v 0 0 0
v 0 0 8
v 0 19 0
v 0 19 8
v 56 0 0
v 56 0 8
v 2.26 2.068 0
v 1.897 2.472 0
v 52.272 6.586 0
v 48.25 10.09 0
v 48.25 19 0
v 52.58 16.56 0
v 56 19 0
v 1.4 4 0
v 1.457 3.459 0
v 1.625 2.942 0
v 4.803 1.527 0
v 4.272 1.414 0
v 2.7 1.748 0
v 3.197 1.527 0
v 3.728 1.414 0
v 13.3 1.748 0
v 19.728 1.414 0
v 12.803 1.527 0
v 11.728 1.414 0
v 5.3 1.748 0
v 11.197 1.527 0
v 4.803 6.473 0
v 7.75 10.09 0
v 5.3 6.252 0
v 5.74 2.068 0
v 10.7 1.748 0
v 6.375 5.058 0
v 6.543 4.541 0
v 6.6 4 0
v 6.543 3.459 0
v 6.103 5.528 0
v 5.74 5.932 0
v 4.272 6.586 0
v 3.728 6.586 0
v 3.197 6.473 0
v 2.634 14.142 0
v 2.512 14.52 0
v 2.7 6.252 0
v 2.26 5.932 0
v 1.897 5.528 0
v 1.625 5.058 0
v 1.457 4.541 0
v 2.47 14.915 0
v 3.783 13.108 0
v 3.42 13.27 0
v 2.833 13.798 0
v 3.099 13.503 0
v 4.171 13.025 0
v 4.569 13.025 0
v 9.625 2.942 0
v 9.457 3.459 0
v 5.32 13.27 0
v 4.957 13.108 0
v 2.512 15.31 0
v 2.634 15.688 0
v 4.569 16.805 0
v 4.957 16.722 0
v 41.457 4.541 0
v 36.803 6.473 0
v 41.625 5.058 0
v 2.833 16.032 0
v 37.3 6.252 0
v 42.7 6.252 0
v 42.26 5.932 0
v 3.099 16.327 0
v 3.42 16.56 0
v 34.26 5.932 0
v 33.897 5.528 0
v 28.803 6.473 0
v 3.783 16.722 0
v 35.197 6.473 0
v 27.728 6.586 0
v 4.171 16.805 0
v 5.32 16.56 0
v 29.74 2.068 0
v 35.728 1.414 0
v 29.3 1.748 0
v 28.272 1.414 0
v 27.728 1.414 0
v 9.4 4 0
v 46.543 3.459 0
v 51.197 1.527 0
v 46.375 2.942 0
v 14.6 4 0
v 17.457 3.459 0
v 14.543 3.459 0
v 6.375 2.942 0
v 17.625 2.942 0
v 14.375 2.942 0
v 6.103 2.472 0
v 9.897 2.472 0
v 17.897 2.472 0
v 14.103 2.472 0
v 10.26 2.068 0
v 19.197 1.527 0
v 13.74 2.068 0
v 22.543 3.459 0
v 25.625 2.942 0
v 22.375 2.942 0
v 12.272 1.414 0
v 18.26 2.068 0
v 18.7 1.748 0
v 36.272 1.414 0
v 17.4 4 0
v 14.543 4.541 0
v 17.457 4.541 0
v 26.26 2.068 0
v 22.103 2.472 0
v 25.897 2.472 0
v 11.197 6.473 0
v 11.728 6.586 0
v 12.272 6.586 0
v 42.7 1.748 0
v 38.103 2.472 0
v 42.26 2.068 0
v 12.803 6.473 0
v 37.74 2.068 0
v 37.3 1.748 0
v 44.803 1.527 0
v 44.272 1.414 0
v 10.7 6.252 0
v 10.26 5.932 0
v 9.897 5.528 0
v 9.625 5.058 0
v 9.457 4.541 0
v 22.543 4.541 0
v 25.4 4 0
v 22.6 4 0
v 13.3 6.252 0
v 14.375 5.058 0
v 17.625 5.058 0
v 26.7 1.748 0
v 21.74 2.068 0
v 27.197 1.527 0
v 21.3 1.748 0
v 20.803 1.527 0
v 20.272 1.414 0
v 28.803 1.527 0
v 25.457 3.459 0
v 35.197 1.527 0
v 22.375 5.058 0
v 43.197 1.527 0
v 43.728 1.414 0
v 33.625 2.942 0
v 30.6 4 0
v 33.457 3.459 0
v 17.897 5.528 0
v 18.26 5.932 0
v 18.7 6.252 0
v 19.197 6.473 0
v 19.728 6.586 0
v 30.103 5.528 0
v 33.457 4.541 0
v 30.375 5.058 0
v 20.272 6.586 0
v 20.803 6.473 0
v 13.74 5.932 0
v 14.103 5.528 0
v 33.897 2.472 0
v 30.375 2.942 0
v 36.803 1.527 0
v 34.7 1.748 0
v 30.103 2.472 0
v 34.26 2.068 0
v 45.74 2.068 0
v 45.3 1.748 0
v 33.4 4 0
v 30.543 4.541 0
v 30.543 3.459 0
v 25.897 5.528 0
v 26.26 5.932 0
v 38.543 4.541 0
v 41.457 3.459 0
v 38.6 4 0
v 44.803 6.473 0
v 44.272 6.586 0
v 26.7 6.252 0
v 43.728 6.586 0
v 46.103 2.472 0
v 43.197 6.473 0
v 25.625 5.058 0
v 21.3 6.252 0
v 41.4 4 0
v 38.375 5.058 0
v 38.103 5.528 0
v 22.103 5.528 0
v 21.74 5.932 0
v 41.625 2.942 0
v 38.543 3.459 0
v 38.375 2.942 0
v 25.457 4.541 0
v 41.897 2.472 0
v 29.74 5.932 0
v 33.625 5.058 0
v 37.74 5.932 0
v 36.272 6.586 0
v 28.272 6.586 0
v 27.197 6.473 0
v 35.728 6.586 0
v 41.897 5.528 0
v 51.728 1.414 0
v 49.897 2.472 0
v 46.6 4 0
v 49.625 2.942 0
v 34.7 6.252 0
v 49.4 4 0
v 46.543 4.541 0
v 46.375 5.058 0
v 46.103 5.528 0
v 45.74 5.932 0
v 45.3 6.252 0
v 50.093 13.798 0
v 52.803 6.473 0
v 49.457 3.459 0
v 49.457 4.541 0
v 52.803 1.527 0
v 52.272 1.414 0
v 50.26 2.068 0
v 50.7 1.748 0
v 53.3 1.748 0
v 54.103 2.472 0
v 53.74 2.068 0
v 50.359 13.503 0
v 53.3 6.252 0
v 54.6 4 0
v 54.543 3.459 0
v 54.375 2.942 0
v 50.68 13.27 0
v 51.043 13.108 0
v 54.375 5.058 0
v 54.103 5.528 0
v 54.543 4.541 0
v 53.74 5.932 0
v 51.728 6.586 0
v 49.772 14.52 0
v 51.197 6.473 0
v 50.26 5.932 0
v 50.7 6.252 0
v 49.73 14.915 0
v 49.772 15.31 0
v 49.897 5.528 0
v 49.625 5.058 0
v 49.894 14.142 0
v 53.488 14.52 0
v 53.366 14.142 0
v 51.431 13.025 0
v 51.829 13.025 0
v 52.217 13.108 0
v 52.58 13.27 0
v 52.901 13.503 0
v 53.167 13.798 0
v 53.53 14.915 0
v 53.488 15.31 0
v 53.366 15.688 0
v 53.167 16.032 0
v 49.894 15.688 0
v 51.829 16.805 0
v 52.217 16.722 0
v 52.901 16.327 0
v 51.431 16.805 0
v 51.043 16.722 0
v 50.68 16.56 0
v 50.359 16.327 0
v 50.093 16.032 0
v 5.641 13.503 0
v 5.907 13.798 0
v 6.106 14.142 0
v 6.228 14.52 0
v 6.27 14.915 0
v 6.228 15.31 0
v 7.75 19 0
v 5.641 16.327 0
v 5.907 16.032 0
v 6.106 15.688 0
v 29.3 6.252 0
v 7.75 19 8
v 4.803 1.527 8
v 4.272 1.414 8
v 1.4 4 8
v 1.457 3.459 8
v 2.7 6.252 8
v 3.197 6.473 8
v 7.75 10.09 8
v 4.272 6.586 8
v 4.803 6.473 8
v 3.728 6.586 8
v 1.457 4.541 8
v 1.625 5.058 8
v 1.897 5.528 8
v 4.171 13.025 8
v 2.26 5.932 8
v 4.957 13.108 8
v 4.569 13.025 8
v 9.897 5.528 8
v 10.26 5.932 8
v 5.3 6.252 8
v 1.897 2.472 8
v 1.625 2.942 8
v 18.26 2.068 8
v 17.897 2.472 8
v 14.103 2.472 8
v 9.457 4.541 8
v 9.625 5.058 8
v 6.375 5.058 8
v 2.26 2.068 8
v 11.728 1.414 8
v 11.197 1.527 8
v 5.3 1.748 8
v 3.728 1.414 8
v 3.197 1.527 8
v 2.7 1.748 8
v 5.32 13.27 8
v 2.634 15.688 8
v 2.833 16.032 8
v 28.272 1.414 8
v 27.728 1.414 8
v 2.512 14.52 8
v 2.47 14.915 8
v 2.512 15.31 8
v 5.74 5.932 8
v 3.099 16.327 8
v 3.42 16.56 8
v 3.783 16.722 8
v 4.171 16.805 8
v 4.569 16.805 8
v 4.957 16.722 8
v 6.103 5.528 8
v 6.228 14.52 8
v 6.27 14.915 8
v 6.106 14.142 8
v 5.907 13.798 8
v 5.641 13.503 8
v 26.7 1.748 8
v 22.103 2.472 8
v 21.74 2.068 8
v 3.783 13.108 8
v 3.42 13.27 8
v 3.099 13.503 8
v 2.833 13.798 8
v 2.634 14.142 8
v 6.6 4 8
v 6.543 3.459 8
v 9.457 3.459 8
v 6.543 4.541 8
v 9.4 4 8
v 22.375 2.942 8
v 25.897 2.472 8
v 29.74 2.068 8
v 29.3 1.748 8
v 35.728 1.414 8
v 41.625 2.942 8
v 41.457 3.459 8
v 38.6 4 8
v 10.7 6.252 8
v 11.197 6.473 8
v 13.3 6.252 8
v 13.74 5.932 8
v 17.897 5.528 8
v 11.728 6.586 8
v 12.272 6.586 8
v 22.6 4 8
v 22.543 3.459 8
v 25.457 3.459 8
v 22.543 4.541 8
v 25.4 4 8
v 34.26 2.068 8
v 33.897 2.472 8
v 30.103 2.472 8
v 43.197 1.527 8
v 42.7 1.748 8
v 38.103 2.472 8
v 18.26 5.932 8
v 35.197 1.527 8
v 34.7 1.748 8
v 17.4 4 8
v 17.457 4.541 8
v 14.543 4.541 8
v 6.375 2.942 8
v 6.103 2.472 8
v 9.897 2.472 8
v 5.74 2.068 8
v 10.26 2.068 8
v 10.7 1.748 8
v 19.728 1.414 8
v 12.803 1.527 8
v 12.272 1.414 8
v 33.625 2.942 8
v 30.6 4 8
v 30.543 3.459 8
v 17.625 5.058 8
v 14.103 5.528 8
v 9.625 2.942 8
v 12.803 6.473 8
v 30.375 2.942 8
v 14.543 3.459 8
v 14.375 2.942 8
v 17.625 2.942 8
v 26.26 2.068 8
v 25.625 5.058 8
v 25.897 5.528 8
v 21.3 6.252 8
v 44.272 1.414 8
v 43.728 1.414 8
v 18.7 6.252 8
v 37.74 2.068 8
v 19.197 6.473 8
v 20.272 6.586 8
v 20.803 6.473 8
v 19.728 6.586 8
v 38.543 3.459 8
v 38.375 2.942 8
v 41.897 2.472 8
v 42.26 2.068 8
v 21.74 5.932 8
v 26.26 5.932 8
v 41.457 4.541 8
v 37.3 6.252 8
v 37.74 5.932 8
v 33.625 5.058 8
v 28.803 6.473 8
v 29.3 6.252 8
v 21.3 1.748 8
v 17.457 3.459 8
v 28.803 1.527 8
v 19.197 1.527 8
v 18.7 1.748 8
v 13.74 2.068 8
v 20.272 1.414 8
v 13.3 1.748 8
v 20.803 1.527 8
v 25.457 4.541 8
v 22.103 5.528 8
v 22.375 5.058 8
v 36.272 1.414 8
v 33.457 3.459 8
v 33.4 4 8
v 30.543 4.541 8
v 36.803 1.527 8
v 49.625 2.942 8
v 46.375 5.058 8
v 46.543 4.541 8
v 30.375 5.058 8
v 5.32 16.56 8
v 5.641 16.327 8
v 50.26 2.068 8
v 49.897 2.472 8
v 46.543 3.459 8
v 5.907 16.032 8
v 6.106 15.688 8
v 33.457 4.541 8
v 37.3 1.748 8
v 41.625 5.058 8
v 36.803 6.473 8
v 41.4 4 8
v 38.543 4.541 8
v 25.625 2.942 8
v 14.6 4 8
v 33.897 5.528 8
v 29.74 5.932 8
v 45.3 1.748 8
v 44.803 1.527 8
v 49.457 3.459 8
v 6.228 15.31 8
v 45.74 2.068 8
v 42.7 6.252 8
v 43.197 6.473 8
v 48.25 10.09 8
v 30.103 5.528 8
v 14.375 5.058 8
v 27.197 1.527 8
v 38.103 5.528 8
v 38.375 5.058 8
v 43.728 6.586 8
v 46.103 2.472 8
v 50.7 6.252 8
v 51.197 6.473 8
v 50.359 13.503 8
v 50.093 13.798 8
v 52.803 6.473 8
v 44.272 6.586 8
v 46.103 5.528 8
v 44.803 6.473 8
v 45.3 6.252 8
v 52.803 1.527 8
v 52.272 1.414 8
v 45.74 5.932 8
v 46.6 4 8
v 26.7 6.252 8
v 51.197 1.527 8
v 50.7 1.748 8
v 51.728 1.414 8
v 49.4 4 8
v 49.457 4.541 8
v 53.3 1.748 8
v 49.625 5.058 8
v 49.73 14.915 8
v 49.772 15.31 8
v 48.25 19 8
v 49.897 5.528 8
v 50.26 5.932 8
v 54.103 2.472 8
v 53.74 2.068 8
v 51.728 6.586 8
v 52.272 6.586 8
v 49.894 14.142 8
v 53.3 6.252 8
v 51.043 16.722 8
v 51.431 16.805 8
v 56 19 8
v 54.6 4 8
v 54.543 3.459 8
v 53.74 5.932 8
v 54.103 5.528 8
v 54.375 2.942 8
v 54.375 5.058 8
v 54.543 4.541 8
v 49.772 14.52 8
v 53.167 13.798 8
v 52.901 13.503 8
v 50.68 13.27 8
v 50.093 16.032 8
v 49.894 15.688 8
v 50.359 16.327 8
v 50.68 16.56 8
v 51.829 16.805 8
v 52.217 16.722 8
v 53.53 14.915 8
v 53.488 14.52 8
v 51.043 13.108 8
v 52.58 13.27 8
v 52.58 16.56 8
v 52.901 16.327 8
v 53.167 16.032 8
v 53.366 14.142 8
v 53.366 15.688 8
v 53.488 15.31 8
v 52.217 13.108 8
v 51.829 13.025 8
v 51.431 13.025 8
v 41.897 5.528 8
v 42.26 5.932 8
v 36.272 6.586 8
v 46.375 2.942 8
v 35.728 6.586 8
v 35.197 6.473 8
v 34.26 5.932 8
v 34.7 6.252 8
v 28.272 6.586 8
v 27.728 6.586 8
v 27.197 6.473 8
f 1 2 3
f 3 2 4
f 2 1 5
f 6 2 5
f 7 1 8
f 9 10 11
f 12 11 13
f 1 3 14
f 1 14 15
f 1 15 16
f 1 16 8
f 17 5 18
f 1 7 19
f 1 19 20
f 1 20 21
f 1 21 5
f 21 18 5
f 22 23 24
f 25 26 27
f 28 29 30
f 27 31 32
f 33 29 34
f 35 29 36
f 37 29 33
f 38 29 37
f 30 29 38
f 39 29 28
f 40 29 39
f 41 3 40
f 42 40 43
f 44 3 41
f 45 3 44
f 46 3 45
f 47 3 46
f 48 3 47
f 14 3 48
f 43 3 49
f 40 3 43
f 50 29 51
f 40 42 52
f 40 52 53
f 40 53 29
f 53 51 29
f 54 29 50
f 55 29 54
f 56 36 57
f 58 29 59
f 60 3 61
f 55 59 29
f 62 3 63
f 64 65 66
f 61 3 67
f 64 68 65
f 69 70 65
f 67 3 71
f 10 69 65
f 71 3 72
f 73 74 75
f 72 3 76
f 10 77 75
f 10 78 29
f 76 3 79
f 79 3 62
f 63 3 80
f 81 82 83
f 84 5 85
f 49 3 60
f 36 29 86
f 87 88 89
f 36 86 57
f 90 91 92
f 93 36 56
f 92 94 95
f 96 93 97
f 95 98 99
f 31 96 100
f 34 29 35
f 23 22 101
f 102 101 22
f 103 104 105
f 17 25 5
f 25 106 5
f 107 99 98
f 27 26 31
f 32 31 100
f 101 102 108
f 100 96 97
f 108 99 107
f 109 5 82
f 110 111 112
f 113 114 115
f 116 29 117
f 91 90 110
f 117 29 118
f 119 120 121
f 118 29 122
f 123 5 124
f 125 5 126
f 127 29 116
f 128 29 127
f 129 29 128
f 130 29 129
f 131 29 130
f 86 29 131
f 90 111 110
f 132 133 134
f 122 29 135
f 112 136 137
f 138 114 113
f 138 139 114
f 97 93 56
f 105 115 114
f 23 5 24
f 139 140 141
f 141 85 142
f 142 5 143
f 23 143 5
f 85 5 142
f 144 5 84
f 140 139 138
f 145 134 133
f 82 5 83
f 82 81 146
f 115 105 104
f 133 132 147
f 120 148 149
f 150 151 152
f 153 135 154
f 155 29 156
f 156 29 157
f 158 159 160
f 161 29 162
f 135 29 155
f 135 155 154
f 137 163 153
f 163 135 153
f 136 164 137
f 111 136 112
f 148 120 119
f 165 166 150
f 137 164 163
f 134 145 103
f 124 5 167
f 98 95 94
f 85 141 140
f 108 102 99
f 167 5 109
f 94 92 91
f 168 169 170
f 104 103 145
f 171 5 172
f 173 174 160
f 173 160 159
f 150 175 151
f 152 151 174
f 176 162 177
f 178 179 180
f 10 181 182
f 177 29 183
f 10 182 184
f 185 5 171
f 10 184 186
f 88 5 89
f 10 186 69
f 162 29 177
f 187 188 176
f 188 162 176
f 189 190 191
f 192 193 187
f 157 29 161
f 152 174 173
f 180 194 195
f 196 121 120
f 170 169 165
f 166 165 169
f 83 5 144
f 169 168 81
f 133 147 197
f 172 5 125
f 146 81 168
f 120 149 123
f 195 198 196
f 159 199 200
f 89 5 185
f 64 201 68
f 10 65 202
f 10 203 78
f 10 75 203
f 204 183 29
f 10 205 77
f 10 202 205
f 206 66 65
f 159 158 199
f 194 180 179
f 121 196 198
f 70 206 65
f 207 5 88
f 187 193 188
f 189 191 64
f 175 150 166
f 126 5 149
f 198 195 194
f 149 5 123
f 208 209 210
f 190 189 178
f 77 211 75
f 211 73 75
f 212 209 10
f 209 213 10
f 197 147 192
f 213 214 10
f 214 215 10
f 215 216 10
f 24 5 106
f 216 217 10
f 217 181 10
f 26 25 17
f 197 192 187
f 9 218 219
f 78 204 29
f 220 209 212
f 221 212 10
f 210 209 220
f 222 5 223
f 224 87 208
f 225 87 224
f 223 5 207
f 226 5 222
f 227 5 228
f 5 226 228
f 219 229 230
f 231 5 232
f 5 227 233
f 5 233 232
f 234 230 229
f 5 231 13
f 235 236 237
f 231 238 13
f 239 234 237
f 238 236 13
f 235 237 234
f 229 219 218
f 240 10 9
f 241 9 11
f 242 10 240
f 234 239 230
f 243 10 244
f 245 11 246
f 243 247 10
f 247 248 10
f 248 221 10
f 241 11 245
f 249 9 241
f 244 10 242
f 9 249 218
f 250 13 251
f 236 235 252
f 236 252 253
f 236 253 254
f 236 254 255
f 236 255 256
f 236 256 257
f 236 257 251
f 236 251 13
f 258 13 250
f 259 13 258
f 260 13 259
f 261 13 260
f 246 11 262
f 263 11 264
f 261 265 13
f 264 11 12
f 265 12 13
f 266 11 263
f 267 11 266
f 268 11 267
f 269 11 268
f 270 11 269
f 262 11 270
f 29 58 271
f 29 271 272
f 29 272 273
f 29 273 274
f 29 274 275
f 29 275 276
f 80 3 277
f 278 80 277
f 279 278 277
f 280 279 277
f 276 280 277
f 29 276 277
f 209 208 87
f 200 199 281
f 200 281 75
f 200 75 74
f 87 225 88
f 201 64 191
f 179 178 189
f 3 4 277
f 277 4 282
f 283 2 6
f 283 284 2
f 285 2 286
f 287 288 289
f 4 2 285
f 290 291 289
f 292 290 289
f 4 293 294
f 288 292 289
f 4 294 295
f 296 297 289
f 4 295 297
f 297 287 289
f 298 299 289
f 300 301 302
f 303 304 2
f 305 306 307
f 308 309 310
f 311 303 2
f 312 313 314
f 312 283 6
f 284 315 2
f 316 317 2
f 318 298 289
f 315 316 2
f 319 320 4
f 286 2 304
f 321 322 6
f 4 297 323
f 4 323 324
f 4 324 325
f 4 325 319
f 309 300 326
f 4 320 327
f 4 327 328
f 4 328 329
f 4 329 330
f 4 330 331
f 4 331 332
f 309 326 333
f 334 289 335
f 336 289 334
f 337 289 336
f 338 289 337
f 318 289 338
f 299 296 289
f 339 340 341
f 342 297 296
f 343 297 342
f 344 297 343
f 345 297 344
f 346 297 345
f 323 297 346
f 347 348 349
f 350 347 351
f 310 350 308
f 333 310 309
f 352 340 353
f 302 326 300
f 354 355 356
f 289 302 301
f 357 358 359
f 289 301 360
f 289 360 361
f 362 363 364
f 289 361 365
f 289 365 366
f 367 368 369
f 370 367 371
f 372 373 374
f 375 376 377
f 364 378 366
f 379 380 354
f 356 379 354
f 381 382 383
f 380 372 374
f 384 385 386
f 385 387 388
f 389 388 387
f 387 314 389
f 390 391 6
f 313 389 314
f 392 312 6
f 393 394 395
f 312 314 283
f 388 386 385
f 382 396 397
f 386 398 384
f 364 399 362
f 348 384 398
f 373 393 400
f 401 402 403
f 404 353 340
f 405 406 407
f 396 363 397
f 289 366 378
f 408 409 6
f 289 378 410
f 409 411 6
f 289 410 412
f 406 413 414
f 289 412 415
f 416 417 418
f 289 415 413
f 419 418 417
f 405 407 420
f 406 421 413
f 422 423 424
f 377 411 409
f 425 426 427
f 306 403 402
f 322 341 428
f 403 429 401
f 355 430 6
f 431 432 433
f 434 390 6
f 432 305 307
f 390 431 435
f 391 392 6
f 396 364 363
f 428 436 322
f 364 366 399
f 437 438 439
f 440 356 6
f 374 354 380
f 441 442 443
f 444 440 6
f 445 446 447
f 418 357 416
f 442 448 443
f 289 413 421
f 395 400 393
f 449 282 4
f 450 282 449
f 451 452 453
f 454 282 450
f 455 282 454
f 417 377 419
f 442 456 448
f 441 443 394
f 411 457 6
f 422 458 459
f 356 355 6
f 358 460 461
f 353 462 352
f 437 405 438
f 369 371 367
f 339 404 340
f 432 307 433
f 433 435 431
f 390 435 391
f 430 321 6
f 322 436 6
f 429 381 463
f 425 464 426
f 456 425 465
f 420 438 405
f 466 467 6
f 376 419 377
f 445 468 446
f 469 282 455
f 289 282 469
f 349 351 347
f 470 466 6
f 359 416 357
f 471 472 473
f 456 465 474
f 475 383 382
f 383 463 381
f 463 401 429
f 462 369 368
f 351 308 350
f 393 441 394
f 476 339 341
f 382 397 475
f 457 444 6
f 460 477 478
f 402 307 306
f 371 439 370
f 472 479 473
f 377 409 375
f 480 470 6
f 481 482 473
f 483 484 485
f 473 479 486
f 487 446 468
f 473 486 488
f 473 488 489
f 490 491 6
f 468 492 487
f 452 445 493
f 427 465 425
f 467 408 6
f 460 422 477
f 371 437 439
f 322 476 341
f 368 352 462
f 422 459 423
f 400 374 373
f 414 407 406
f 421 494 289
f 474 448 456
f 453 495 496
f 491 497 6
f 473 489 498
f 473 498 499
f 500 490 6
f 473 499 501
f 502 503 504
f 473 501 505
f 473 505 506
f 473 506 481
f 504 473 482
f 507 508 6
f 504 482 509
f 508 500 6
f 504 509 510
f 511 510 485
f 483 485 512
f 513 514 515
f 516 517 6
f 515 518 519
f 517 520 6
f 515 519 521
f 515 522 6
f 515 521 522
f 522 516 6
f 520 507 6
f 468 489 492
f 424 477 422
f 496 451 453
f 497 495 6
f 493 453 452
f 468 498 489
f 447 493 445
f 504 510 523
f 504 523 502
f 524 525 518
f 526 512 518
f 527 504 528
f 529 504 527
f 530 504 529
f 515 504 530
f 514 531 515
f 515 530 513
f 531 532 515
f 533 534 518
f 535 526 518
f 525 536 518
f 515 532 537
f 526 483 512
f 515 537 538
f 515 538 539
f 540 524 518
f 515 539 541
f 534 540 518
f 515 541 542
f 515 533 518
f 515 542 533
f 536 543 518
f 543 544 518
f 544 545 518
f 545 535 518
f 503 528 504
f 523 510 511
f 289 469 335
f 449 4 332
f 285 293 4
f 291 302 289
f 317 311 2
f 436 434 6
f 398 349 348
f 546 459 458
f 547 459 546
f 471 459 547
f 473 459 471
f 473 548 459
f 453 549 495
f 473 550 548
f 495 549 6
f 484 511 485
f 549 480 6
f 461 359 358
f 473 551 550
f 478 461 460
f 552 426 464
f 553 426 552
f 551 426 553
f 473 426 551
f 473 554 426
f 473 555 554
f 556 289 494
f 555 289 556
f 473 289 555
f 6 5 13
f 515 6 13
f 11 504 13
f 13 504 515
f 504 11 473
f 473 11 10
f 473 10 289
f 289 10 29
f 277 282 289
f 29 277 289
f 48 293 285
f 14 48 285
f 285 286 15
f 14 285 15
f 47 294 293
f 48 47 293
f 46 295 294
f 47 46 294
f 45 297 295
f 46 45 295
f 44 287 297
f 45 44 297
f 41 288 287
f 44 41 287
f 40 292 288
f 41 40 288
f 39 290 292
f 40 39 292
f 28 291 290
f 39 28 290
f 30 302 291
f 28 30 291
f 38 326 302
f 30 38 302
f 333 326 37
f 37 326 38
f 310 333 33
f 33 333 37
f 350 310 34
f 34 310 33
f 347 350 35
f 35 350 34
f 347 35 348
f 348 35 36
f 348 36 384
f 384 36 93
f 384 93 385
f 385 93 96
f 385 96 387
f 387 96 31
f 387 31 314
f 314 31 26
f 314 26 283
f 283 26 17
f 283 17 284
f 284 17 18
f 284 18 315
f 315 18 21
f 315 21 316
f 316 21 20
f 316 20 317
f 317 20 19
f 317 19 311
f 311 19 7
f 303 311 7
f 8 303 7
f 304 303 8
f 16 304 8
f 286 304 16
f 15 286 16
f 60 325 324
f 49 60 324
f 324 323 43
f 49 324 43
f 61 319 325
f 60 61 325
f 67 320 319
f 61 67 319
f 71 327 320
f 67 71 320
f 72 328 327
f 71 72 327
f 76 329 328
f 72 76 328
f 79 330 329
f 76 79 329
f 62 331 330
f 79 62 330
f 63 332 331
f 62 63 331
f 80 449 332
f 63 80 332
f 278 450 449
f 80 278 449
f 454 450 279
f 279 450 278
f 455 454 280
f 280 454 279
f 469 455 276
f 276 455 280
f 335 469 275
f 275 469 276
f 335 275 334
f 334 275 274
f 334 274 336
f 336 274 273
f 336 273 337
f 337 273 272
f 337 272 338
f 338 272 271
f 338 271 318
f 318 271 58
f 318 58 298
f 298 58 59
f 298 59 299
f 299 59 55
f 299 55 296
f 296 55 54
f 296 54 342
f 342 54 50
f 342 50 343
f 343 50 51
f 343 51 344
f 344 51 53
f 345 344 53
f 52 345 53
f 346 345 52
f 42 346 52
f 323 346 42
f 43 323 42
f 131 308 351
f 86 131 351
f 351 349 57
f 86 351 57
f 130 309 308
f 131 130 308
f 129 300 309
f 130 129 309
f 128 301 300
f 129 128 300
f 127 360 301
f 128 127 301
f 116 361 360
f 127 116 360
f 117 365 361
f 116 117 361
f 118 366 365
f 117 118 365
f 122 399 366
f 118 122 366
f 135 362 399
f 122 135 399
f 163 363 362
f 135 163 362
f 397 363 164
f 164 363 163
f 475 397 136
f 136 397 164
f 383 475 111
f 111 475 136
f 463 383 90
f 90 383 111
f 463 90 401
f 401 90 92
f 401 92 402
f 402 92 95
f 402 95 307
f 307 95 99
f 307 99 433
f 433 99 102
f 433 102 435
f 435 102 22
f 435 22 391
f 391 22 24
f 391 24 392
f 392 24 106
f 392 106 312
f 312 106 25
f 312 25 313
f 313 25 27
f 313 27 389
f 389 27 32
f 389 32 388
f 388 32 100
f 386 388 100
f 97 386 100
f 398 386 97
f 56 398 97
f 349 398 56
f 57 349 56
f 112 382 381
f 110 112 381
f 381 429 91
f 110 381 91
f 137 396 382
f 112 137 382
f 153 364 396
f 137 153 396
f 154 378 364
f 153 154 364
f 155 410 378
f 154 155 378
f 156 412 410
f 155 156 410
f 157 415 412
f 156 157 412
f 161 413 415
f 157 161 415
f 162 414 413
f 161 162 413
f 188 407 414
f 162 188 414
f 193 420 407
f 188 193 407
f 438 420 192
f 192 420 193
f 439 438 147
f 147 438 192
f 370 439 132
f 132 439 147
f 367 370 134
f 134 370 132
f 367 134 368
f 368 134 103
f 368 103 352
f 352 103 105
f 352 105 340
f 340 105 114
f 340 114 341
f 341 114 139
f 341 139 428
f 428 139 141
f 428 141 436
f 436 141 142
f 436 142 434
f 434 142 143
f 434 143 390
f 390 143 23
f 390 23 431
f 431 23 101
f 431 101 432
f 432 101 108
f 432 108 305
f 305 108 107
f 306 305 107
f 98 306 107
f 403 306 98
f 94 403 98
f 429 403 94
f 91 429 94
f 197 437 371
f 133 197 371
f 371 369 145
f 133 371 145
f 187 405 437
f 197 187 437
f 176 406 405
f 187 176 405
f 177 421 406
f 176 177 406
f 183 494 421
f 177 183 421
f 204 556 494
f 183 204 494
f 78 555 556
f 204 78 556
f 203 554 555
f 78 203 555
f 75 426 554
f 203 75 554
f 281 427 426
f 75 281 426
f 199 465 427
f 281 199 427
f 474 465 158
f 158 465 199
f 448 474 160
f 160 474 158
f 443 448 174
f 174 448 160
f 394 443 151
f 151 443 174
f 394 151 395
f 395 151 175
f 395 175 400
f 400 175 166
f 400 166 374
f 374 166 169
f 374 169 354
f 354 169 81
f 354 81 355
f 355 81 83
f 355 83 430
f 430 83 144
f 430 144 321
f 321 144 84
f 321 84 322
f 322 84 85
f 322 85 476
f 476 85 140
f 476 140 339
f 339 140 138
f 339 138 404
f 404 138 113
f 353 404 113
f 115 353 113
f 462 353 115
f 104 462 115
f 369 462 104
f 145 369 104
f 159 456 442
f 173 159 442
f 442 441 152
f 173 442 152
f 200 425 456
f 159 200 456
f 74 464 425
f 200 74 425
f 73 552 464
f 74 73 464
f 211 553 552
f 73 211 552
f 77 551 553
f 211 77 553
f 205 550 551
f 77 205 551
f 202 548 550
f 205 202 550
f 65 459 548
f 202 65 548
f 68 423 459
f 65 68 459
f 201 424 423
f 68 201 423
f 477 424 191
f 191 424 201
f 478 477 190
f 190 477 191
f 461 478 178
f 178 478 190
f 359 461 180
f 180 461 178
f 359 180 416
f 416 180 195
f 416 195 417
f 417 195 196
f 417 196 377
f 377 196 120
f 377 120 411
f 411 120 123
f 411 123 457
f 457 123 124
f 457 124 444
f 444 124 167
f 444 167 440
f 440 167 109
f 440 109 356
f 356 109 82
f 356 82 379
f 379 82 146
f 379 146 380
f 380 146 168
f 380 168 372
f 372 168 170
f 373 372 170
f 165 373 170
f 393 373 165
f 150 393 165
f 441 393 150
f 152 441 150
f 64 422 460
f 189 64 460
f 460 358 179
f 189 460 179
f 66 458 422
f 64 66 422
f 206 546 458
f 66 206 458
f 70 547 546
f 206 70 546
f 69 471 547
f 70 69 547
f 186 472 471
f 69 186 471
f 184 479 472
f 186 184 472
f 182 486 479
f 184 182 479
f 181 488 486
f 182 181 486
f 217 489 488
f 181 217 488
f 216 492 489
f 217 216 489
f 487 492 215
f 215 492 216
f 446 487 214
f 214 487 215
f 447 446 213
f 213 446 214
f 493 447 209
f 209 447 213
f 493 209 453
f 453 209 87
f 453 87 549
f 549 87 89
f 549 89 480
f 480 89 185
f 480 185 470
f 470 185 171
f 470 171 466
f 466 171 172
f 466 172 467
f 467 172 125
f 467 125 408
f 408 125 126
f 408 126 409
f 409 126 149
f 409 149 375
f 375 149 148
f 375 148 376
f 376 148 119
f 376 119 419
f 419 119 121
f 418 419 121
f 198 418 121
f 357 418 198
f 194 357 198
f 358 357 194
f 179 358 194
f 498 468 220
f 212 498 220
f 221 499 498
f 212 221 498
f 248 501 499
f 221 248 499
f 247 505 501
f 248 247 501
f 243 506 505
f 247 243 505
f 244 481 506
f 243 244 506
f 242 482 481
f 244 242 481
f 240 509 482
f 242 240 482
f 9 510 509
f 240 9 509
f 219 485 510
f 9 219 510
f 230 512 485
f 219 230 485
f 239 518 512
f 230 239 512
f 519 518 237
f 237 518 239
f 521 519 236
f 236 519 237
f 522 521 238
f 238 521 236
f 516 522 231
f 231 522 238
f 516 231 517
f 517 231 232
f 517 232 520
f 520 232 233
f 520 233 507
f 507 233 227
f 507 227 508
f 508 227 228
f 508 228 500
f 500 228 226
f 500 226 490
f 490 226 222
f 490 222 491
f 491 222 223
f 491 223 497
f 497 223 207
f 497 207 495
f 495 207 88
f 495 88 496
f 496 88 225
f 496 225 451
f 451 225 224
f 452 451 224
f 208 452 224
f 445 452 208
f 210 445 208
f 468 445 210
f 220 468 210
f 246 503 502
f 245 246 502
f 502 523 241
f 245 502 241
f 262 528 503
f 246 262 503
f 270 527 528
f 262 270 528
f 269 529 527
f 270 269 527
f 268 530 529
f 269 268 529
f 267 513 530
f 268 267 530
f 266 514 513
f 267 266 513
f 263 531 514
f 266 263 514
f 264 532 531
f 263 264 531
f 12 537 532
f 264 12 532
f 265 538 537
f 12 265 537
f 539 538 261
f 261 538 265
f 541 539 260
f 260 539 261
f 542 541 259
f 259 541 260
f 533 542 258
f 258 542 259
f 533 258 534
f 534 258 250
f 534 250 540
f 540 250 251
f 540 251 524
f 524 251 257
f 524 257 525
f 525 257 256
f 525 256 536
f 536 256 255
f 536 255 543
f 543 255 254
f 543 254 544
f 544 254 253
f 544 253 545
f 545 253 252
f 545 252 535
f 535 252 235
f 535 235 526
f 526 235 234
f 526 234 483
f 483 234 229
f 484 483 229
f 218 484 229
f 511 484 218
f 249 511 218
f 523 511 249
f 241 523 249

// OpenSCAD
// From: http://www.servocity.com/html/hs-311_standard.html
A = 19.82;
B = 13.47;
C = 33.79;
D = 10.17;
E = 9.66;
F = 30.22;
G = 11.68;
H = 26.67;
J = 52.84;
K = 9.35;
L = 4.38;
M = 39.88;
X = 3.05;

// Clearance hole for either 6-32 or M3 bolt
servo_hole_radius = 3.8/2;

// Bitbeam (and Lego Technic) beam width
beam_width = 8;

// Bitbeam (and Lego Technic) hole size
hole_diameter = 5.2;
hole_radius   = hole_diameter / 2;

module servo() {
    x1 = (J-(B+C))/2;
    y1 = (A-D)/2;

    x2 = x1+B+C;
    y2 = y1;

    // 2 mounting holes
    translate([x1,y1,-2])
    cylinder(r=servo_hole_radius, h=12, $fn=30);

    translate([x2,y2,-2])
    cylinder(r=servo_hole_radius, h=12, $fn=30);

    // servo hole
    x_servo = (J-40.5)/2;
    y_servo = 0;
    translate([x_servo, y_servo,-2])
    cube([40.5,20,12]);
}


module box() {
    difference() {
        cube([7*beam_width,2.5*beam_width-1,8]); 

        for (x=[beam_width/2 : beam_width : 7*beam_width]) {
            translate([x,beam_width/2,-2])
            cylinder(r=hole_radius, h=12, $fn=30);
        }
    }
}


difference() {
    box();
    
    translate([(7*beam_width-J)/2,(5*beam_width-A)/2])
    servo();
}
